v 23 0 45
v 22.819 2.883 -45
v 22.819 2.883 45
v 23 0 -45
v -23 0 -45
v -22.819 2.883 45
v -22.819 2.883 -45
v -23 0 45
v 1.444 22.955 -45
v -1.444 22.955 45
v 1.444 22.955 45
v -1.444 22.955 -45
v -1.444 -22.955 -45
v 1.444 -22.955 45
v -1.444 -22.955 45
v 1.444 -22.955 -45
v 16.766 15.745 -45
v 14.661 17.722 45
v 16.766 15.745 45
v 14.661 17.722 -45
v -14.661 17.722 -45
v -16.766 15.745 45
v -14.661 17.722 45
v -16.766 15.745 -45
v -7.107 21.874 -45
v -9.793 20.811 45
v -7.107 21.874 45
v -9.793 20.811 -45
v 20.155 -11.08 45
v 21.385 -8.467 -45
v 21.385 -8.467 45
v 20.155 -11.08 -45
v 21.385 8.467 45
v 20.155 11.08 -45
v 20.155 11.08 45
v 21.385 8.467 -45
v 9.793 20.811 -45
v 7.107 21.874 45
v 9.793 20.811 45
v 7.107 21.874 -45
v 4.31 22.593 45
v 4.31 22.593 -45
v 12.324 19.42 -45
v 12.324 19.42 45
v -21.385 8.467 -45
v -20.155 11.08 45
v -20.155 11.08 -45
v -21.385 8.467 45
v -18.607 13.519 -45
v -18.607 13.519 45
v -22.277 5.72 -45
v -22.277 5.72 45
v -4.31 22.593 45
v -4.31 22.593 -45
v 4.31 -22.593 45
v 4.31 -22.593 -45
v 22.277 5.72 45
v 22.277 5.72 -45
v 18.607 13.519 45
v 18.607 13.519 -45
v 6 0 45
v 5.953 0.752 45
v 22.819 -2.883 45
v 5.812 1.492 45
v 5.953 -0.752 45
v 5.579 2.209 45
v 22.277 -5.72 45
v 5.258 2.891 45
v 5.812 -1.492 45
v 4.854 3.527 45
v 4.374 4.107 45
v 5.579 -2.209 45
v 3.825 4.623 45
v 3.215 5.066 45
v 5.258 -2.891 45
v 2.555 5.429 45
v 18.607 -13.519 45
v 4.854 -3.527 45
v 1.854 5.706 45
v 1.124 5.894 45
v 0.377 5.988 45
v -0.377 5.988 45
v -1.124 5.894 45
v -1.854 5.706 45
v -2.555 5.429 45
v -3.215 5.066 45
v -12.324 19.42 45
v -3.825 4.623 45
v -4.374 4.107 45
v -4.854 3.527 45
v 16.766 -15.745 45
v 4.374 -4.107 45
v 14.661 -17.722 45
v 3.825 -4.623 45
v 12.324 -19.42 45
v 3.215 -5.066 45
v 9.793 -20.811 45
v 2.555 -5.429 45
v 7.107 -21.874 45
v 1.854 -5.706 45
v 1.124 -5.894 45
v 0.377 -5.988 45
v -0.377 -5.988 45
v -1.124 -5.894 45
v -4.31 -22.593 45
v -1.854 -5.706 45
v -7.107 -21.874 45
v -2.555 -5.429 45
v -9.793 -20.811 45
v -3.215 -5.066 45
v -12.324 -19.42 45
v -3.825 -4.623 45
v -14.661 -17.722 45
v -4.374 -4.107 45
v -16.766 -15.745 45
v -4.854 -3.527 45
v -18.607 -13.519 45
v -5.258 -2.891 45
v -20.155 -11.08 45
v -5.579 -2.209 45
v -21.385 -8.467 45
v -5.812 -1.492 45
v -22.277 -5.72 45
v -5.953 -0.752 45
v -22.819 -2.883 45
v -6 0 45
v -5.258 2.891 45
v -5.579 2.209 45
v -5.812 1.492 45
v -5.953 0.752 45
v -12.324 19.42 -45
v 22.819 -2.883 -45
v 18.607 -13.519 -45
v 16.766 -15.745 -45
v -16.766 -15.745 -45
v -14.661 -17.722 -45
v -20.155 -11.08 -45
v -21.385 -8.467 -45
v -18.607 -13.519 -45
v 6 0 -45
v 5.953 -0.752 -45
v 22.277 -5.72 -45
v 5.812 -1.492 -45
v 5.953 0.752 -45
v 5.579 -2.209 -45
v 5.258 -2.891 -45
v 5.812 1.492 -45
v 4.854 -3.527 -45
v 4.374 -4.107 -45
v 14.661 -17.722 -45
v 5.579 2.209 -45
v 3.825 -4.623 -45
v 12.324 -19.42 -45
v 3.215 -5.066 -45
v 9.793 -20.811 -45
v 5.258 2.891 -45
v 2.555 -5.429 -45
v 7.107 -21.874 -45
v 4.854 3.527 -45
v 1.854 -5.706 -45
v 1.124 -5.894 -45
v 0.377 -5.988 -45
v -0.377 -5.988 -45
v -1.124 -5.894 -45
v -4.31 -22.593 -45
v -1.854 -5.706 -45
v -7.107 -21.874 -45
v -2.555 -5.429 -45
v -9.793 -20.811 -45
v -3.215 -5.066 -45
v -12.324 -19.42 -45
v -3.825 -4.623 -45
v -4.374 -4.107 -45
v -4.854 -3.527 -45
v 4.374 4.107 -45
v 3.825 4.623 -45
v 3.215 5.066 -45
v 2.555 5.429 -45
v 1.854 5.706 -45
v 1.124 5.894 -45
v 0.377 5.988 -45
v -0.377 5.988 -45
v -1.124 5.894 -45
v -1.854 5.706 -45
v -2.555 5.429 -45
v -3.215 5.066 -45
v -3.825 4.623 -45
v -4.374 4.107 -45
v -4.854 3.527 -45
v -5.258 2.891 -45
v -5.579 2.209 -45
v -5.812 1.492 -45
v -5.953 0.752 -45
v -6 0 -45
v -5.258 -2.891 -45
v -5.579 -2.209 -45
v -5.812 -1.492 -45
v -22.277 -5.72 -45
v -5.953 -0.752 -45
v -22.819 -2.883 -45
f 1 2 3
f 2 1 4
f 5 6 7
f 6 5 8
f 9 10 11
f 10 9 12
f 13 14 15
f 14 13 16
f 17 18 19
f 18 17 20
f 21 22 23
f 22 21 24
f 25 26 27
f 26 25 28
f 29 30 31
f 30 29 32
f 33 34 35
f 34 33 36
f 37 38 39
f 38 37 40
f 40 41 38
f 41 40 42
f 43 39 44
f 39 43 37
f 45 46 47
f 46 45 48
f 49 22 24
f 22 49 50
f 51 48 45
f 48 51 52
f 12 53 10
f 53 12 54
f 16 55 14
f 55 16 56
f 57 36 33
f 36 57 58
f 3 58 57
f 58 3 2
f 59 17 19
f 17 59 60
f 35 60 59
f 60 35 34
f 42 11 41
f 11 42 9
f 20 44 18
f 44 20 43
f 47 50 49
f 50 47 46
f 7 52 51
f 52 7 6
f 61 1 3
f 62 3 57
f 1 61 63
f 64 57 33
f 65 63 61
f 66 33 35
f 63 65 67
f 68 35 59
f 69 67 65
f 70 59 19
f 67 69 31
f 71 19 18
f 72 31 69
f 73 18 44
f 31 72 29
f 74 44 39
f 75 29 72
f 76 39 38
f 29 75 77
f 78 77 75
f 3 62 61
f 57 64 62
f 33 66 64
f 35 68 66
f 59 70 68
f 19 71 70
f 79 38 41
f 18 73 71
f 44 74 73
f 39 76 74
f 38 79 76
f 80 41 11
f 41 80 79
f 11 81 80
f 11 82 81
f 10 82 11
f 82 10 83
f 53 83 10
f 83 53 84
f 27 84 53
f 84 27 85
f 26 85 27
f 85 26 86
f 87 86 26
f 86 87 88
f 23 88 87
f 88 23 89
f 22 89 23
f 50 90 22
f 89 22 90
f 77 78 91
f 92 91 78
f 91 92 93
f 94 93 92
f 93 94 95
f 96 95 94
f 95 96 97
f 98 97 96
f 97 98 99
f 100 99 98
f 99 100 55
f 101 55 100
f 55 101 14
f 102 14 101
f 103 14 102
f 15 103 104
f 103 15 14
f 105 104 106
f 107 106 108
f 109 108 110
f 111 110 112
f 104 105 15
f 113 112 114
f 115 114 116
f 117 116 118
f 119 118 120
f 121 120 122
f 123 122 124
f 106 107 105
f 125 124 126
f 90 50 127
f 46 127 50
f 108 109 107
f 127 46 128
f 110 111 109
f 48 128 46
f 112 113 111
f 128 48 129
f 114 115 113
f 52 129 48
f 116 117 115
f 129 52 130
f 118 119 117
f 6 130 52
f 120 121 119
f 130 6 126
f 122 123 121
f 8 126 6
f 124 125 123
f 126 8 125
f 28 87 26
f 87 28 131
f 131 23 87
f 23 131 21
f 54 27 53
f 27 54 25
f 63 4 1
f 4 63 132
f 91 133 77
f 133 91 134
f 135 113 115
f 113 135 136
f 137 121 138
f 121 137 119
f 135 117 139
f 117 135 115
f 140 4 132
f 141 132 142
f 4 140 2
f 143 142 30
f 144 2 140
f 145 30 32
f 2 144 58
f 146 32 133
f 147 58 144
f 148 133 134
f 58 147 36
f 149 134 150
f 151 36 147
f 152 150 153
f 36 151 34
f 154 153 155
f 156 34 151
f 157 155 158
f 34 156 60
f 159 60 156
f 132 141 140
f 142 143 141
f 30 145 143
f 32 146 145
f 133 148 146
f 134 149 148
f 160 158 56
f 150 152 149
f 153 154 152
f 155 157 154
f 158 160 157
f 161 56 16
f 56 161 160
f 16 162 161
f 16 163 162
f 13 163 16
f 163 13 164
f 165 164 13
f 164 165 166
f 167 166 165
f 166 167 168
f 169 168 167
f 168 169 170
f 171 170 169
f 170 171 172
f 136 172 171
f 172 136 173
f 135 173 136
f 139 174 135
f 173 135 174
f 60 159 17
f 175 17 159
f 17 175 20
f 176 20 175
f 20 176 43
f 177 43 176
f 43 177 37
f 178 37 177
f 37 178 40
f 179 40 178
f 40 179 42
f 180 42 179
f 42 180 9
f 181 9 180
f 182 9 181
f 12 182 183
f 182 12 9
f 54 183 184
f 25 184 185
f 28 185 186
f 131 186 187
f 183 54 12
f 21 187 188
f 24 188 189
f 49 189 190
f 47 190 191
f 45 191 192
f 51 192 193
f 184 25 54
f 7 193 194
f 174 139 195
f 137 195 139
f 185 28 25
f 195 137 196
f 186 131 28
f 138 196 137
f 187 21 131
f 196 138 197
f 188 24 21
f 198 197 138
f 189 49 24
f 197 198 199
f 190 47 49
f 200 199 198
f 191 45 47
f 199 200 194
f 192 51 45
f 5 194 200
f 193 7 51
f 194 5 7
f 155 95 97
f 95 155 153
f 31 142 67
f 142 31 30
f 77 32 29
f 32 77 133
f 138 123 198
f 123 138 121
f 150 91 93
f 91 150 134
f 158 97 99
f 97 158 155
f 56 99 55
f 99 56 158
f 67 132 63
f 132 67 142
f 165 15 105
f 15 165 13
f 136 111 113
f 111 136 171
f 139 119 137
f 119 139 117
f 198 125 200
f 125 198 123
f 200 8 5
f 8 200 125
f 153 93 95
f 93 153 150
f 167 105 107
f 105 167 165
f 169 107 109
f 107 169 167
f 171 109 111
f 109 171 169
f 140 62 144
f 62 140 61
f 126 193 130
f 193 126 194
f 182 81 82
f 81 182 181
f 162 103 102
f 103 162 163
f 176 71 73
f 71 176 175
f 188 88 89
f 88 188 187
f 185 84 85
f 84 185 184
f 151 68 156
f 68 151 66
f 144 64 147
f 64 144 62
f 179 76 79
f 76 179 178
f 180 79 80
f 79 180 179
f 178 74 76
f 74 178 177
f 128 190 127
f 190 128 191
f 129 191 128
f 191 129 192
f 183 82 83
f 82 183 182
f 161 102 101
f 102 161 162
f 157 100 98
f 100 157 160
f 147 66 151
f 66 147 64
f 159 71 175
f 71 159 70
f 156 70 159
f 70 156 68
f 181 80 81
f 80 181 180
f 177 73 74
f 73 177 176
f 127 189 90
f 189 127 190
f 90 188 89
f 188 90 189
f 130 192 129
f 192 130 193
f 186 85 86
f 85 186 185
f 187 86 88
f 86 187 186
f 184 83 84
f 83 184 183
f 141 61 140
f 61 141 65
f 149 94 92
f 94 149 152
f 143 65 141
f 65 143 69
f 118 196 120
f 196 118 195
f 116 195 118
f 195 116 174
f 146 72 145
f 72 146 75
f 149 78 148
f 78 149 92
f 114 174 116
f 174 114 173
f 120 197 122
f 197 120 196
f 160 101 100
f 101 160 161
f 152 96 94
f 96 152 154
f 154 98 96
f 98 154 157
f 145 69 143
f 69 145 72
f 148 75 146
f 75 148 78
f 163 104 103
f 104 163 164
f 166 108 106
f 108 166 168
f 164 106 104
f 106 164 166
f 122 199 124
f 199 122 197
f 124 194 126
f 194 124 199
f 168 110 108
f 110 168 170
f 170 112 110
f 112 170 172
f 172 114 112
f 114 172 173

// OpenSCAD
$fn = 50;


difference() {
	union() {
		translate(v = [0, 0, -45.0000000000]) {
			cylinder(h = 90, r = 23.0000000000);
		}
	}
	union() {
		translate(v = [0, 0, -100.0000000000]) {
			cylinder(h = 200, r = 6);
		}
	}
}
